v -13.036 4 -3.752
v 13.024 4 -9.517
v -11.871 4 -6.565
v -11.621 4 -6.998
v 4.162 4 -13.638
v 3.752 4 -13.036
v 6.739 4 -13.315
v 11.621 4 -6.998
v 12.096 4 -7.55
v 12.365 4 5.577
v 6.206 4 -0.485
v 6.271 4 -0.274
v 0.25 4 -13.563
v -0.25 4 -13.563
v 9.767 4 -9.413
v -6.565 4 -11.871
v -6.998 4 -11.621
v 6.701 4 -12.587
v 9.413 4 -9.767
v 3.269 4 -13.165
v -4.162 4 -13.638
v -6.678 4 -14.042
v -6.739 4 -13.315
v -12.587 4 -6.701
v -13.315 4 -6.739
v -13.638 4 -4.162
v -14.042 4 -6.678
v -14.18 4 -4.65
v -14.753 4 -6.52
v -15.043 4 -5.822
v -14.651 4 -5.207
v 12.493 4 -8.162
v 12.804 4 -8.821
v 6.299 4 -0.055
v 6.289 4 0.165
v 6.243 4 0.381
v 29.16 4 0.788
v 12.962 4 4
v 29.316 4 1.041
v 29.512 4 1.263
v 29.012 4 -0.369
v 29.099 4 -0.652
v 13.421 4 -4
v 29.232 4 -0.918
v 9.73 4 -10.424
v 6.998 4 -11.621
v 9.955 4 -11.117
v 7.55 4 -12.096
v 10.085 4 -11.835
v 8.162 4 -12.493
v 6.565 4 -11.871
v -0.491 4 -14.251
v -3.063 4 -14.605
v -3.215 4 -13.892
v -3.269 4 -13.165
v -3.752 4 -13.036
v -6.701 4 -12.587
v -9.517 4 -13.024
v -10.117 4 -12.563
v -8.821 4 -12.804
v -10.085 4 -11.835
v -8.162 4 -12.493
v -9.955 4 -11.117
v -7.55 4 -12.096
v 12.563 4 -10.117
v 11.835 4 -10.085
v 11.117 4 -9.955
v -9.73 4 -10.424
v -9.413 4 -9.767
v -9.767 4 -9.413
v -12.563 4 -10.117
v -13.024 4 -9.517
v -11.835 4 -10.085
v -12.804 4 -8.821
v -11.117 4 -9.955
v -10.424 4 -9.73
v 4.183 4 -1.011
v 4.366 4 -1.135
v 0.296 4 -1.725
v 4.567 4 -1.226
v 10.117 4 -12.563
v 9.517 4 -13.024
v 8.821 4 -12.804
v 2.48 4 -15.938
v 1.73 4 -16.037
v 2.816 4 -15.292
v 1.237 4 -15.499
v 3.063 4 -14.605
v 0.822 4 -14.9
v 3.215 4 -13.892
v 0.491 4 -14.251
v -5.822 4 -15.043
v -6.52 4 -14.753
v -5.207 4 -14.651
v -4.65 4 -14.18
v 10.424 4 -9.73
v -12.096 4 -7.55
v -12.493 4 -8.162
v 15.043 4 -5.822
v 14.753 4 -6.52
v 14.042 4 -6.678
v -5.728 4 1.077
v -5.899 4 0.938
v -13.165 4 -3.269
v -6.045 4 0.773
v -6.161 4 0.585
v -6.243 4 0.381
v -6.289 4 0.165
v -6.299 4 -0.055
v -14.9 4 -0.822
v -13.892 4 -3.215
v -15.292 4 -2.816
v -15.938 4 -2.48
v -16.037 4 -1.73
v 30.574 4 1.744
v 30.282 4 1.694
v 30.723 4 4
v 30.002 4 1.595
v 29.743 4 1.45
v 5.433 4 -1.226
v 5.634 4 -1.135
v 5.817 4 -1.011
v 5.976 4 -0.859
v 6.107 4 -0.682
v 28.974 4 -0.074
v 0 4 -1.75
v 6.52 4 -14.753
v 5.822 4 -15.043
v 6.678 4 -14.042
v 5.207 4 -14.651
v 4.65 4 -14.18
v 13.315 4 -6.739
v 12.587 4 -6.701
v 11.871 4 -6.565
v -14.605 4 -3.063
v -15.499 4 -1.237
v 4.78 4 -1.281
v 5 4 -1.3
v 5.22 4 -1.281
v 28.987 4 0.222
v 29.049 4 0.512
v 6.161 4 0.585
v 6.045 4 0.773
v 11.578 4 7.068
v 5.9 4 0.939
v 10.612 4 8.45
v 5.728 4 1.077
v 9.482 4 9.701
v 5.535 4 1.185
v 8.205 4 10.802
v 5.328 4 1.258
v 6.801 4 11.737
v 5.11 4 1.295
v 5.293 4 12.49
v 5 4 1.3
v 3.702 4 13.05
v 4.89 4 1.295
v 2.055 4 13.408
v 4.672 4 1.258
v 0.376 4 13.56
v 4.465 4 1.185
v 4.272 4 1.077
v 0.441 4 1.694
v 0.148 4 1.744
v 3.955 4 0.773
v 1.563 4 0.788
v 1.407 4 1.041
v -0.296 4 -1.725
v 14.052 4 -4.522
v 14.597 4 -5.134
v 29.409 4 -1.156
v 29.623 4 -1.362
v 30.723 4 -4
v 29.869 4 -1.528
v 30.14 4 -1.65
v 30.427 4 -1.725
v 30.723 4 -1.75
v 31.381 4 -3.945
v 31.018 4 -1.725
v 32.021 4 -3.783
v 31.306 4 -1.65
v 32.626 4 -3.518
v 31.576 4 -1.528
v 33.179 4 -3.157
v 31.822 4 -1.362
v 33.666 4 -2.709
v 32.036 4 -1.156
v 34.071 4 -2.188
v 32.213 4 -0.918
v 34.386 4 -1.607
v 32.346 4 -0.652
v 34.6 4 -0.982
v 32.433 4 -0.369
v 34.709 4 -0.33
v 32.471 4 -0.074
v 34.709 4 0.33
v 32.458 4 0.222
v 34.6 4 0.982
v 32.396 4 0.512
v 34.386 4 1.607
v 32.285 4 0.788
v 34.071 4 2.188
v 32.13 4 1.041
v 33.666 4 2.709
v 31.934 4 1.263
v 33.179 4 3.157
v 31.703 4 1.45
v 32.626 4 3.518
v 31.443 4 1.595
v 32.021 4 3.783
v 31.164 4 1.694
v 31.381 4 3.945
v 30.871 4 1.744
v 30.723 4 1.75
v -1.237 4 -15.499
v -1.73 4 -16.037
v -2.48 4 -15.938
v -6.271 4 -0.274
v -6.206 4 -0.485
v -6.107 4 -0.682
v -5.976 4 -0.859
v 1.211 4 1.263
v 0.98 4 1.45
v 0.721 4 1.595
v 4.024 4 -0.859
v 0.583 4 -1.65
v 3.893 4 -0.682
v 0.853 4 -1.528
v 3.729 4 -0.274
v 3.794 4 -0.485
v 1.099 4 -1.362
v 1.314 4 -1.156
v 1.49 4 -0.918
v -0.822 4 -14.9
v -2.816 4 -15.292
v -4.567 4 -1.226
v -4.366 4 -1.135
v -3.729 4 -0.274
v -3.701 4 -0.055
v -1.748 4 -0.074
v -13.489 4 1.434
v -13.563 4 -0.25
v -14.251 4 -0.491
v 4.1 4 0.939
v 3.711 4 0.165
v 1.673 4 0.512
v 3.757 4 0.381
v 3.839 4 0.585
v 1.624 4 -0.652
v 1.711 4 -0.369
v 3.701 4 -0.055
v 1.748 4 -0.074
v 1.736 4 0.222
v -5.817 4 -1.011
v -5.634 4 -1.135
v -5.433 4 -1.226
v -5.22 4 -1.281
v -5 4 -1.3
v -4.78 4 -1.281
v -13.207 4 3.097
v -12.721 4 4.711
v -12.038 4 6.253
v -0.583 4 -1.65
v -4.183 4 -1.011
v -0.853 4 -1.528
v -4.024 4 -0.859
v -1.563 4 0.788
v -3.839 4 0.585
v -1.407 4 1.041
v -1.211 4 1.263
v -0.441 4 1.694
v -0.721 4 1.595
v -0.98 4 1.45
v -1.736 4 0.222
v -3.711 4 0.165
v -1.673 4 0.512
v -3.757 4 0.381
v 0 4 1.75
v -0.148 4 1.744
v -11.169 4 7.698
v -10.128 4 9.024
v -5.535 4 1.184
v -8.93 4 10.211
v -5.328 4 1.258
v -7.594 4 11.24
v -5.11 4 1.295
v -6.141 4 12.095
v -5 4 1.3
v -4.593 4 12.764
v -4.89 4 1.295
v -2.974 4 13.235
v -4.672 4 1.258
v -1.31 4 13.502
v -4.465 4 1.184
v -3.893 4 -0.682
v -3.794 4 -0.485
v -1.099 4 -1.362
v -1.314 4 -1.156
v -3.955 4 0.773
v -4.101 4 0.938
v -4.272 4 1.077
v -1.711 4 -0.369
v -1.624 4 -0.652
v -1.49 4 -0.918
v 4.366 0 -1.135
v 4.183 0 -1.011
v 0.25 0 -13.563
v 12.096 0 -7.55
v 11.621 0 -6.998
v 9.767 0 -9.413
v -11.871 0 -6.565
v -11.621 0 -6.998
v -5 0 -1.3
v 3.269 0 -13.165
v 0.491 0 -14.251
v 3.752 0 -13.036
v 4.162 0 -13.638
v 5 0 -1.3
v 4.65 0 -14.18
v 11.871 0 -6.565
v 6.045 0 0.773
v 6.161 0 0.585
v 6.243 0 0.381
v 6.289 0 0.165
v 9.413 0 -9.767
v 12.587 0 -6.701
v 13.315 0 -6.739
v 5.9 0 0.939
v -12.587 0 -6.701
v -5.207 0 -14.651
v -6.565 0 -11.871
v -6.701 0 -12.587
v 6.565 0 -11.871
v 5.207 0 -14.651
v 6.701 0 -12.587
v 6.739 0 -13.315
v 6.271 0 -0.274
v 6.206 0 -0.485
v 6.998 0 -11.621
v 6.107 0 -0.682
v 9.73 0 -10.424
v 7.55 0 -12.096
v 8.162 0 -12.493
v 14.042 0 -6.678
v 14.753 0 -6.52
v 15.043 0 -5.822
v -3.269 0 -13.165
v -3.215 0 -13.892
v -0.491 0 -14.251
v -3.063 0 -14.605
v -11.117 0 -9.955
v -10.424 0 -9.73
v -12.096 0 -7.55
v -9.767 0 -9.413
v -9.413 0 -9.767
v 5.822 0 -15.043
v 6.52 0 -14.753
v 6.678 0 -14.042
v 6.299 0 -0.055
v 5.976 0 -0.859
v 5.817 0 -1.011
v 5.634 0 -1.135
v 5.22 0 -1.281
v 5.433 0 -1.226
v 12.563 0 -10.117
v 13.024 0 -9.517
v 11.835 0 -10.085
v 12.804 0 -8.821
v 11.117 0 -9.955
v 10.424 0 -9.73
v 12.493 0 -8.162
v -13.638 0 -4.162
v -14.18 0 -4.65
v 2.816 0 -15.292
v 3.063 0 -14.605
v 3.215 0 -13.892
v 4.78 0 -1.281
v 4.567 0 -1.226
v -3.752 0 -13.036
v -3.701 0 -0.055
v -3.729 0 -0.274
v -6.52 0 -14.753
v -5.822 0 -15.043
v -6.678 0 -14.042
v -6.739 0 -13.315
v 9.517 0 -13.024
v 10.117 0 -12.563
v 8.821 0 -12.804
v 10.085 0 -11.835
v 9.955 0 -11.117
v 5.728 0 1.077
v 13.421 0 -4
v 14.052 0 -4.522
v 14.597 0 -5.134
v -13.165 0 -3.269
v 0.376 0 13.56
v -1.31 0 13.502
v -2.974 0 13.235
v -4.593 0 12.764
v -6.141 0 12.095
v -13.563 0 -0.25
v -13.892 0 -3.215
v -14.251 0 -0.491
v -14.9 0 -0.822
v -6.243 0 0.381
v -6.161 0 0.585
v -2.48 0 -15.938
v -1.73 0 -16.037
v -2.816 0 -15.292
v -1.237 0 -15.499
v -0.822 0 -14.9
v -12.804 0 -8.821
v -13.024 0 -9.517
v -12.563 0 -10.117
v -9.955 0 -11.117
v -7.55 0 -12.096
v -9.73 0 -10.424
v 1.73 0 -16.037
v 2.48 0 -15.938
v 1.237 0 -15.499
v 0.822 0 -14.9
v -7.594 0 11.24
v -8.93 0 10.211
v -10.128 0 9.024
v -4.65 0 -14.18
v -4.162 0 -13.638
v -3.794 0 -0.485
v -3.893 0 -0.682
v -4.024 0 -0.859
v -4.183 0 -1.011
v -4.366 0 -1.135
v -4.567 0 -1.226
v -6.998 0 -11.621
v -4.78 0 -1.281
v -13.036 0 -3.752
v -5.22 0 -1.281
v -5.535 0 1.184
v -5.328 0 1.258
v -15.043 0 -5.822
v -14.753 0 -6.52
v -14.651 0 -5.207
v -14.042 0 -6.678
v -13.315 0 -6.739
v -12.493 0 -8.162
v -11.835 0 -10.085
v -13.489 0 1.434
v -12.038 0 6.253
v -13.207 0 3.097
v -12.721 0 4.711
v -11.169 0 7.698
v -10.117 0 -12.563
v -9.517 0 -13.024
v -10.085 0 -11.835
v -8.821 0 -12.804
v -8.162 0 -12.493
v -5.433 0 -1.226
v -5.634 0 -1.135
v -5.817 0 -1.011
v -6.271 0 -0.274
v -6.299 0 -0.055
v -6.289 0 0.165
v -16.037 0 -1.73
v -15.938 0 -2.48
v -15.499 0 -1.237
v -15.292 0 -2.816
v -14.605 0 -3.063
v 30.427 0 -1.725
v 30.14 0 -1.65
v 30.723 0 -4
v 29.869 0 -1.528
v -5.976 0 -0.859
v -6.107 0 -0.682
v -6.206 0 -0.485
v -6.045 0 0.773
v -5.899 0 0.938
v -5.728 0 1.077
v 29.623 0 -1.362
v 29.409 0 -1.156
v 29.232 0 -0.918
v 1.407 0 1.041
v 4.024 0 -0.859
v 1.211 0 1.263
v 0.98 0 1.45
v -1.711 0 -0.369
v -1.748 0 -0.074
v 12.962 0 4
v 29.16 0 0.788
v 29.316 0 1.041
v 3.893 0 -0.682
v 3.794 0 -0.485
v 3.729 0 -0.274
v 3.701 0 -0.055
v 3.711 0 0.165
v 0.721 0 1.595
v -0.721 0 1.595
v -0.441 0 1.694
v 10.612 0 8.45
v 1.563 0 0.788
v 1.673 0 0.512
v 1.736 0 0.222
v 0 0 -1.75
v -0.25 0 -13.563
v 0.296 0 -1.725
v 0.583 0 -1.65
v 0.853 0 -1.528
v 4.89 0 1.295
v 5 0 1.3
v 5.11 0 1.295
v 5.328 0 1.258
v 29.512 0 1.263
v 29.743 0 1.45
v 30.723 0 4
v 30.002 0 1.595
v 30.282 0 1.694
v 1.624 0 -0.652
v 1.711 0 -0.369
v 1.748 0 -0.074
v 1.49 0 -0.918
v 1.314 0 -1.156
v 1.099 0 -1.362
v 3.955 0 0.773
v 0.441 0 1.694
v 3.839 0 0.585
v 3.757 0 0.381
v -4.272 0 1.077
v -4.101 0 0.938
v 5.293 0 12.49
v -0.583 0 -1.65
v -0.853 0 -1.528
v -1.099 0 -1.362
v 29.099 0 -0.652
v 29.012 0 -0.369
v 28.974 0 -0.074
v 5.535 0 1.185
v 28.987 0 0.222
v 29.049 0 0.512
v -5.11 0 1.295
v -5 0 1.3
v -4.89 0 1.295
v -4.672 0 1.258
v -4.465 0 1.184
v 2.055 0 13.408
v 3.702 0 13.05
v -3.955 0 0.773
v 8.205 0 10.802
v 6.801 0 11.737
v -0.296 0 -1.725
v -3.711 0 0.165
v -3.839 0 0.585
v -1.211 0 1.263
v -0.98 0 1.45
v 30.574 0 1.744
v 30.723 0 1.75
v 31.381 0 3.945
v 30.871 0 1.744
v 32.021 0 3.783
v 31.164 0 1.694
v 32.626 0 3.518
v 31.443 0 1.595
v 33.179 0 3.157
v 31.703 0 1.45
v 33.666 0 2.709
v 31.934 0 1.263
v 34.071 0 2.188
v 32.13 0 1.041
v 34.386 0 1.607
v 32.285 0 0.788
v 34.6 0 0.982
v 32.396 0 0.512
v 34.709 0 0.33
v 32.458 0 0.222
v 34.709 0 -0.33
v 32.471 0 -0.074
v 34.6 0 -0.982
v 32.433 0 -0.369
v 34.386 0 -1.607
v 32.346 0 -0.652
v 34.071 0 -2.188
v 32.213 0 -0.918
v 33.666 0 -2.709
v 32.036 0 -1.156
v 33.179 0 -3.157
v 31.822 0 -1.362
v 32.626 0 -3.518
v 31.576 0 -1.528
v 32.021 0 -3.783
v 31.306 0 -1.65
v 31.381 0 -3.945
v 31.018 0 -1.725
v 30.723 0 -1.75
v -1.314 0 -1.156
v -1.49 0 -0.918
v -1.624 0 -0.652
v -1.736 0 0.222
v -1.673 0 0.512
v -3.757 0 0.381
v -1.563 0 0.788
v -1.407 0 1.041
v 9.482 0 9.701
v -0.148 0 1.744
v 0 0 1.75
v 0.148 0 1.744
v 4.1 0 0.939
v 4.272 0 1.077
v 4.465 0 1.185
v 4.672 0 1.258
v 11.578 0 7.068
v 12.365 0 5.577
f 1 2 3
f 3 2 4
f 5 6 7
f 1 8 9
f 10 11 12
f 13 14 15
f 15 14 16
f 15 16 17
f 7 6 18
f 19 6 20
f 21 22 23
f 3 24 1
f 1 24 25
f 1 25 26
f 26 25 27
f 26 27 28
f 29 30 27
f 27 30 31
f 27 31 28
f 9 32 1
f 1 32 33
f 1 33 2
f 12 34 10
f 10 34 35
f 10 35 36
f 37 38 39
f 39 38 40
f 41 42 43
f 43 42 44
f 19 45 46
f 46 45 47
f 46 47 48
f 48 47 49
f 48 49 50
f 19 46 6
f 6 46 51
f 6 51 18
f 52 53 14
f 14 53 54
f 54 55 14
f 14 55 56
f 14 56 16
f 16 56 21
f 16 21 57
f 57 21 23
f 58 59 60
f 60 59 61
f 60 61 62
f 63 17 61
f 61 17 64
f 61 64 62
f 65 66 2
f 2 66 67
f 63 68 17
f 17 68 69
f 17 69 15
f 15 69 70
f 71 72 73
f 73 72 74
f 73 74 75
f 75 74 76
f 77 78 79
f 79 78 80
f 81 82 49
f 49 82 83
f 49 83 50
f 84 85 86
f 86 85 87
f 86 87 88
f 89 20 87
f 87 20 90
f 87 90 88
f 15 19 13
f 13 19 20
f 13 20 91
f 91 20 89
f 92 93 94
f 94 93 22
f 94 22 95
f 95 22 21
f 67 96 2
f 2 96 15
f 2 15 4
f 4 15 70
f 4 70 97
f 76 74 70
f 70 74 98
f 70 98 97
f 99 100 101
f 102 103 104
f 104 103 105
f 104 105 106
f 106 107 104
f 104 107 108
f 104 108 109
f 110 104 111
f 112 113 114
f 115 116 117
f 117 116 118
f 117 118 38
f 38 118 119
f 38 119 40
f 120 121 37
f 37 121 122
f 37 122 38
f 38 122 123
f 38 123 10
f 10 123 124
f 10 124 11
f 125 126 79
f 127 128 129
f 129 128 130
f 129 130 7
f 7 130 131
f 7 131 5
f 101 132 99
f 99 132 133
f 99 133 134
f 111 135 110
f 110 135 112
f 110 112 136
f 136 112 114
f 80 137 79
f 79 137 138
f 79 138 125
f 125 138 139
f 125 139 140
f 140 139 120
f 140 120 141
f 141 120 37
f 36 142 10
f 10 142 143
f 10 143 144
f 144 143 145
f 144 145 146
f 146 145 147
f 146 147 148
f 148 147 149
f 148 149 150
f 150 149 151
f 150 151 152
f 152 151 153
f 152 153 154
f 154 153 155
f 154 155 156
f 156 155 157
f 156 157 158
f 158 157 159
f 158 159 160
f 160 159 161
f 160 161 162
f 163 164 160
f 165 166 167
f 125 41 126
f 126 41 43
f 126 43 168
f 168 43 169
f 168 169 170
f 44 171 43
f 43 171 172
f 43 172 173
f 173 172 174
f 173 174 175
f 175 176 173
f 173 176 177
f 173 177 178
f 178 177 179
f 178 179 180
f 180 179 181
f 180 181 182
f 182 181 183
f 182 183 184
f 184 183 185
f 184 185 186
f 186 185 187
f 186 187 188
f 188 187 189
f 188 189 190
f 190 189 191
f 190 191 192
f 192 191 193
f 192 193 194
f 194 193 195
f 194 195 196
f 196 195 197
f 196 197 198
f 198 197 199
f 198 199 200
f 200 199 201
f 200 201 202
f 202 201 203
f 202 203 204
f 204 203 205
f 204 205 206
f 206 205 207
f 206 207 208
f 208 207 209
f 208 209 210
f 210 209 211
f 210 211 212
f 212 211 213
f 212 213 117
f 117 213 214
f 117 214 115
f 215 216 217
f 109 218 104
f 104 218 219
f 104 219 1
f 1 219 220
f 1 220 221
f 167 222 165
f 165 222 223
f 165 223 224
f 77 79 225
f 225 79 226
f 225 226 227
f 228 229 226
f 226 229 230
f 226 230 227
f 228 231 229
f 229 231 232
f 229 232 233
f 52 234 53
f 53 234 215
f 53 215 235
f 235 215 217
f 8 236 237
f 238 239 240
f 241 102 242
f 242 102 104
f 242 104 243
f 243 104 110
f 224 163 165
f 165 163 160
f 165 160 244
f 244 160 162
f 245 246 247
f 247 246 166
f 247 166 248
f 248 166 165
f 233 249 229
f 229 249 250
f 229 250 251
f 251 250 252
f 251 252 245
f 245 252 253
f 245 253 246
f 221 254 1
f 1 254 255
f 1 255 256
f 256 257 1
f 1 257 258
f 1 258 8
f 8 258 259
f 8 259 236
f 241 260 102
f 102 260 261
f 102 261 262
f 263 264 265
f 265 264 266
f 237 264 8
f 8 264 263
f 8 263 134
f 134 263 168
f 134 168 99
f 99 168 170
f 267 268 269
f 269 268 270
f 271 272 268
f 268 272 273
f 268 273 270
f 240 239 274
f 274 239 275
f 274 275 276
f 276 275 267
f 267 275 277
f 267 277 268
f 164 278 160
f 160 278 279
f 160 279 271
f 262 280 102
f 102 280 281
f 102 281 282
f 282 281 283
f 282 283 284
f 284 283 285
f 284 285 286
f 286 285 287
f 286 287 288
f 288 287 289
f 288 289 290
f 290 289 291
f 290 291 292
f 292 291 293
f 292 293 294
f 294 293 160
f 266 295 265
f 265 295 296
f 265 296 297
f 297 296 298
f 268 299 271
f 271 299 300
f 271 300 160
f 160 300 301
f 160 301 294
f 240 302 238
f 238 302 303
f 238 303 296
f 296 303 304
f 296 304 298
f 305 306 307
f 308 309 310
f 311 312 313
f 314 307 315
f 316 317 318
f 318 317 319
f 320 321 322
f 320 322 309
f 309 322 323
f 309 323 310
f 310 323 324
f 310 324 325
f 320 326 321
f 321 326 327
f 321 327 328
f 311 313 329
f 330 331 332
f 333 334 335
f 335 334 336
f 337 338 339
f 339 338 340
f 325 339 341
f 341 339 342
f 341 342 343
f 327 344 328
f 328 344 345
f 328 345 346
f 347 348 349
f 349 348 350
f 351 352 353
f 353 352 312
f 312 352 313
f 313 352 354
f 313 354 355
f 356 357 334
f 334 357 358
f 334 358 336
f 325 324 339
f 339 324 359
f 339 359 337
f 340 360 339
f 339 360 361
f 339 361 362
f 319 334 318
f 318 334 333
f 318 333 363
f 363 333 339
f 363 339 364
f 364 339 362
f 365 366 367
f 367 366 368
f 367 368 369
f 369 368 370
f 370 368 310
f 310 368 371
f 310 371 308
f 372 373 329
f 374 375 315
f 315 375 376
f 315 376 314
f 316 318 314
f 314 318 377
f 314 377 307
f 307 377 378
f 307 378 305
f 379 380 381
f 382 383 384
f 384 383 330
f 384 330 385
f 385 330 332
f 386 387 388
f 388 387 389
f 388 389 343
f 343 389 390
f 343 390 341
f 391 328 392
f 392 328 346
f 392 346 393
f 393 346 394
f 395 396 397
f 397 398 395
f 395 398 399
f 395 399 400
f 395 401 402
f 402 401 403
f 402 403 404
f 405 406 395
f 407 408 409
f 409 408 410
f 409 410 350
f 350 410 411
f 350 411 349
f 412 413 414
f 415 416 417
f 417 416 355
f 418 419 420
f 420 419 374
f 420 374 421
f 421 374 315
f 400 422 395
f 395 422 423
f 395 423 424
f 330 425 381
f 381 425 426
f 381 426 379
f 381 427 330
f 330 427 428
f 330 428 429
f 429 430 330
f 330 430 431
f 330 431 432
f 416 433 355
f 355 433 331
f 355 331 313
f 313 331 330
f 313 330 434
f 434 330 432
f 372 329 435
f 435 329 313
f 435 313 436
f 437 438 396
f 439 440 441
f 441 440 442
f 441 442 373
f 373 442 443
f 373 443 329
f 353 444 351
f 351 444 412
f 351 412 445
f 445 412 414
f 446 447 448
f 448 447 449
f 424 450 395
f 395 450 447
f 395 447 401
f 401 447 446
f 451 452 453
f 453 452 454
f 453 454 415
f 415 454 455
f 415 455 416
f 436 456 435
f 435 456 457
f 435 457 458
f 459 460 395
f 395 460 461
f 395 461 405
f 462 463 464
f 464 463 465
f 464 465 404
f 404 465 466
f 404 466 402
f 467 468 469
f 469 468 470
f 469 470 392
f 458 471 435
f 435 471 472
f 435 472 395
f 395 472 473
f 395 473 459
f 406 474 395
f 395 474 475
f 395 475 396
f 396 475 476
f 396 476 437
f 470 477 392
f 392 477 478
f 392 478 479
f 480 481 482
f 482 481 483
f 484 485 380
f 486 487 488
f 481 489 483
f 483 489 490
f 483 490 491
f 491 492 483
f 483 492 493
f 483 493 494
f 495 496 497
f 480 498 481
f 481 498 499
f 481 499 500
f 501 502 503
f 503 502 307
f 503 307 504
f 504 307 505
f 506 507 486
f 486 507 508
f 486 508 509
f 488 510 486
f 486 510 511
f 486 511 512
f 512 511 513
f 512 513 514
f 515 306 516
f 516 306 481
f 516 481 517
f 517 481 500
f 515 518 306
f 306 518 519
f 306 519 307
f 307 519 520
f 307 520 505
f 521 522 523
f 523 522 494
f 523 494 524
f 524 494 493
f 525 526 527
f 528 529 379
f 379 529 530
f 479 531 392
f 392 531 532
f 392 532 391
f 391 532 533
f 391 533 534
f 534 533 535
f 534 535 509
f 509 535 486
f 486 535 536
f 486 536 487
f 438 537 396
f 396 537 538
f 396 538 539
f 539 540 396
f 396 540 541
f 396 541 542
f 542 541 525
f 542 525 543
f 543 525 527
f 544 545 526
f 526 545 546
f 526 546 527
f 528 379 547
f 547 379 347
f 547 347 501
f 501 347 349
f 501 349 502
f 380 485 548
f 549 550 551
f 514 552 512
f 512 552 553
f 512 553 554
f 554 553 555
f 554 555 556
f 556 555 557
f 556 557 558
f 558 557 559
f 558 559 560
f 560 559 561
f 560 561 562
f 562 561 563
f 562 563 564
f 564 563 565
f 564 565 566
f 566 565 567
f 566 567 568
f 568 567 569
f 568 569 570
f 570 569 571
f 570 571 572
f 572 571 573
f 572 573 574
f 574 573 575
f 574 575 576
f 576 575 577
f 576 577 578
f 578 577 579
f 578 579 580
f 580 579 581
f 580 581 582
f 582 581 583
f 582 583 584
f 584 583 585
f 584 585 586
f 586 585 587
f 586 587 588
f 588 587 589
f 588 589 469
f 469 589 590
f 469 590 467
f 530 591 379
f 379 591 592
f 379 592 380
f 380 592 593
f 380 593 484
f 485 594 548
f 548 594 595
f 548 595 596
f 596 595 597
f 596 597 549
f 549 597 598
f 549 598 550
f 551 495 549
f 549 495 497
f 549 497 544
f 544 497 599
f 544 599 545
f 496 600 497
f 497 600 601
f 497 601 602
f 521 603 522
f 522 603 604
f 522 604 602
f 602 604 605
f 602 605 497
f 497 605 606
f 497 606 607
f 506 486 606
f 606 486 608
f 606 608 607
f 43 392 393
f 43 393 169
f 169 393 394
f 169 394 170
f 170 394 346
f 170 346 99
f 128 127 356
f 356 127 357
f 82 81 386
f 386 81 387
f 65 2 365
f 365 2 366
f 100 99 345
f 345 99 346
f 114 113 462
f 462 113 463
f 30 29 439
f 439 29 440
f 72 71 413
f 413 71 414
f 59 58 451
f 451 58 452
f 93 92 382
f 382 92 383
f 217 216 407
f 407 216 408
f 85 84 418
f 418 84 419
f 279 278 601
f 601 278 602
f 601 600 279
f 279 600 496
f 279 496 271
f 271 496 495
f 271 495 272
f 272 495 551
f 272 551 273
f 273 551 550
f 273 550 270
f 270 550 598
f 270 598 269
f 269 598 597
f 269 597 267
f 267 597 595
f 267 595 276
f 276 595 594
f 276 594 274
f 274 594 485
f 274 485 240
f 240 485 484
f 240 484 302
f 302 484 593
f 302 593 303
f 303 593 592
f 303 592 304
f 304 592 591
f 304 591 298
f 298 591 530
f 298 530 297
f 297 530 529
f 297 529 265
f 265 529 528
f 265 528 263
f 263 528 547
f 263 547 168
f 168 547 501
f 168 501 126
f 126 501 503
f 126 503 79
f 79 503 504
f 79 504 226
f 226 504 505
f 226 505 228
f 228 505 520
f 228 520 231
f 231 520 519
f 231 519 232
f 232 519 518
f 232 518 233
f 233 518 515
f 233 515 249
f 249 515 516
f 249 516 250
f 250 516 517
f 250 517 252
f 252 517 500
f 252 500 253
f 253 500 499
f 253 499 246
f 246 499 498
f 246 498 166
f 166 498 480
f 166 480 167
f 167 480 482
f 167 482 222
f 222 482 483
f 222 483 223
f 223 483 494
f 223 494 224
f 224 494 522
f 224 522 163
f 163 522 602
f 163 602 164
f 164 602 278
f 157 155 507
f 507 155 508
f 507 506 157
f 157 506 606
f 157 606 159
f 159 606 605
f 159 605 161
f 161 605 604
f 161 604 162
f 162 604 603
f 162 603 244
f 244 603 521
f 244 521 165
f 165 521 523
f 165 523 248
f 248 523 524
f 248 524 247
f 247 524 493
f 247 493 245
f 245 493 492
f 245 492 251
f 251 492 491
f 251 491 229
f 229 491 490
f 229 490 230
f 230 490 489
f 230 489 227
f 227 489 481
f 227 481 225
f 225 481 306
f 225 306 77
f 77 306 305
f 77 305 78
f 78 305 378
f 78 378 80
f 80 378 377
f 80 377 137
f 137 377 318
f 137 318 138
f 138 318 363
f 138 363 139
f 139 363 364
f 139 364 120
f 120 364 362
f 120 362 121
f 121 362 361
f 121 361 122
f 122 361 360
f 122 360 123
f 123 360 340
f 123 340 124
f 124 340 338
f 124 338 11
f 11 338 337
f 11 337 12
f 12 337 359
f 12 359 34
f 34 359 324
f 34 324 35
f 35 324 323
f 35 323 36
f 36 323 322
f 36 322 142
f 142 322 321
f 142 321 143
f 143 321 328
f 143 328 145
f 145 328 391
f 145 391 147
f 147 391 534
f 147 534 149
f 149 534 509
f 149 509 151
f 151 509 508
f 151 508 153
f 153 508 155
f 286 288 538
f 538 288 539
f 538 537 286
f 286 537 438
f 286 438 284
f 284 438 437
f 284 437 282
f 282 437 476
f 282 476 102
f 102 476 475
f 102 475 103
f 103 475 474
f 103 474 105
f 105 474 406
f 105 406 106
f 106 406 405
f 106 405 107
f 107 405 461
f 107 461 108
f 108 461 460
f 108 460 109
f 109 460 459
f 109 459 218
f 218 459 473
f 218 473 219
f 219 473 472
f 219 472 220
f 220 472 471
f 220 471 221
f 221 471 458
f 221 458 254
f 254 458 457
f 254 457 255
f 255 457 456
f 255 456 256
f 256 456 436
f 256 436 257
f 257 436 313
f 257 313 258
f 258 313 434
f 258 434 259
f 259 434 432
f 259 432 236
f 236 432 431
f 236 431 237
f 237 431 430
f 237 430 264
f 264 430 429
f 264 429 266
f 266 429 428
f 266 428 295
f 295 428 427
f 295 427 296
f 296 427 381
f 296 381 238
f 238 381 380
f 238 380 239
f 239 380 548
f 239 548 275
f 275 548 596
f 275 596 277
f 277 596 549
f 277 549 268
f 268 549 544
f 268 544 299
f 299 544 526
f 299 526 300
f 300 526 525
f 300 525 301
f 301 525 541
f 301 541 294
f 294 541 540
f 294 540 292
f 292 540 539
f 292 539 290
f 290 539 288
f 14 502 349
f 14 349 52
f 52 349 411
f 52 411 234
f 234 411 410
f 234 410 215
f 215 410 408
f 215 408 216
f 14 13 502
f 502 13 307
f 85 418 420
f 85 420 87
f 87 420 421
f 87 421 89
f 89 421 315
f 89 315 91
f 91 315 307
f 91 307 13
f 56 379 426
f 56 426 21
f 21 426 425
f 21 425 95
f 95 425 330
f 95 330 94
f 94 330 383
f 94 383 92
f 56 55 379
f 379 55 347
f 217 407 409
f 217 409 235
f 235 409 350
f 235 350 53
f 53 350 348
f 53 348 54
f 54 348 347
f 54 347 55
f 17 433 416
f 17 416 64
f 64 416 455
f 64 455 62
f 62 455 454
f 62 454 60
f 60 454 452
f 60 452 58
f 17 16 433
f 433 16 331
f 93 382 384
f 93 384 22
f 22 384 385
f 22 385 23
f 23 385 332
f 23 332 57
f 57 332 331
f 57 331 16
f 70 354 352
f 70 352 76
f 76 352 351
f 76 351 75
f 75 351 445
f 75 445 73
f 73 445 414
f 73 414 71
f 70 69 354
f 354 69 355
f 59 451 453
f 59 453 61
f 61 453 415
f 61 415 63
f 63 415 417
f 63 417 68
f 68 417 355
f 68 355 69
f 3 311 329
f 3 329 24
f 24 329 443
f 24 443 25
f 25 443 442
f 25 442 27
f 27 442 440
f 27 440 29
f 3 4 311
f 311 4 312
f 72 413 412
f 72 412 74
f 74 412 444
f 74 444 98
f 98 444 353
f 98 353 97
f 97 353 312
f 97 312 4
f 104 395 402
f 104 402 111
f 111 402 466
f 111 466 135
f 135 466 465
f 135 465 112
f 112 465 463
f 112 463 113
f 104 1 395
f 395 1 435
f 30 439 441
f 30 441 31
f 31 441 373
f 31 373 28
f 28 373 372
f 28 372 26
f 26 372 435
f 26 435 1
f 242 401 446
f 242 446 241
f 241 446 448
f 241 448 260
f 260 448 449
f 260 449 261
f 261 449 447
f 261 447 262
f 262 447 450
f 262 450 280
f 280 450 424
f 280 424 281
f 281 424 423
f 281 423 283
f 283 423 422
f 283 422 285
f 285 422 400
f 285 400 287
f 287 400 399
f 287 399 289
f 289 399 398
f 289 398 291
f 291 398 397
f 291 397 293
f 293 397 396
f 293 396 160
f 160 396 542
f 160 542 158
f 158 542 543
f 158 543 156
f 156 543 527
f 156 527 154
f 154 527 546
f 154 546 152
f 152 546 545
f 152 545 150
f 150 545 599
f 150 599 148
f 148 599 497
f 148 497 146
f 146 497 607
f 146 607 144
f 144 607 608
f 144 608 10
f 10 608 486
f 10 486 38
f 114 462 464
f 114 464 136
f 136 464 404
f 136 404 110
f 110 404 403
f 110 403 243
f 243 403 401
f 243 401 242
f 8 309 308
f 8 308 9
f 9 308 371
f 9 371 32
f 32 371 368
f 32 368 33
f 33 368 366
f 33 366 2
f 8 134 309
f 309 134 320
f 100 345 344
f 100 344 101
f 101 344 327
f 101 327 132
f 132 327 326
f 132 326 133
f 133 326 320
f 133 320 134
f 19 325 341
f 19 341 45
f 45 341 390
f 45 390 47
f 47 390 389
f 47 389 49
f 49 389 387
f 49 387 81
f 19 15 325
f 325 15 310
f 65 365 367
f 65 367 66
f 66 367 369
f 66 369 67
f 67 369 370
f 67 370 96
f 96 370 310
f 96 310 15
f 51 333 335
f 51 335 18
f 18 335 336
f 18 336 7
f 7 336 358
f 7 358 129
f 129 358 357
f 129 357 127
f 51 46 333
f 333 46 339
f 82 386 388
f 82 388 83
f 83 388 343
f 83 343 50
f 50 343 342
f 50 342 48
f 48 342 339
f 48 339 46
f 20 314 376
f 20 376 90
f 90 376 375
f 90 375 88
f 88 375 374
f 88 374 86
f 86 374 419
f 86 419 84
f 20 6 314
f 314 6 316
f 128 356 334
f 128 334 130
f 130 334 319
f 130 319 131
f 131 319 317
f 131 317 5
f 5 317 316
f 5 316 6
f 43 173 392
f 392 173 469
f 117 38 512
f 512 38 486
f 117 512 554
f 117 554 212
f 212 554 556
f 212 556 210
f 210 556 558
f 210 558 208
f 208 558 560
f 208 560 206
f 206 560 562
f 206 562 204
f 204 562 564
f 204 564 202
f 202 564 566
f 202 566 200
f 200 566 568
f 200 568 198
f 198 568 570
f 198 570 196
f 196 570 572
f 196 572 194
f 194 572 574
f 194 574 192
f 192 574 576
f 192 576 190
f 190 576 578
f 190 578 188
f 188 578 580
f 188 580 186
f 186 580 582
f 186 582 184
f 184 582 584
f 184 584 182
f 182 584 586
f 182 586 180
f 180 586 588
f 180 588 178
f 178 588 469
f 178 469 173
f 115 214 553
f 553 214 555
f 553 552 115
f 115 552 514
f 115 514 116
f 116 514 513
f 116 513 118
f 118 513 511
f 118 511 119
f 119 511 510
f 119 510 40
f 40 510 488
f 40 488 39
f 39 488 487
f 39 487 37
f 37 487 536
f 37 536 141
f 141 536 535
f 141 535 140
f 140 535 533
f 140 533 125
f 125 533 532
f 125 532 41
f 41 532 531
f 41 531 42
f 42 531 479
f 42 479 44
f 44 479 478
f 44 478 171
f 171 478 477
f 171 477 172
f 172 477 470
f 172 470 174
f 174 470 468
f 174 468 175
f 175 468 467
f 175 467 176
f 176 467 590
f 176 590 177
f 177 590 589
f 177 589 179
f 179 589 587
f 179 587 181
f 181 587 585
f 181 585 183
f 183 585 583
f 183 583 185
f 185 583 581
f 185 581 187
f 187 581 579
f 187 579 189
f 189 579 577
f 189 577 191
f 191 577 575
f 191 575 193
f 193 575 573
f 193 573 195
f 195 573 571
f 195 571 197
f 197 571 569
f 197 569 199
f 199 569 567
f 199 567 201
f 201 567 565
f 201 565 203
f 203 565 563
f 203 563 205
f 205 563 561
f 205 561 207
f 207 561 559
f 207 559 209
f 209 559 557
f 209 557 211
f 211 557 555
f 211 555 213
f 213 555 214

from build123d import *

# Parameters (mm, degrees)
IZIM2_R                     = 16.13
IZIM2_R_2                   = 1.75
IZIM2_R_3                   = 1.3
IZIM2_R_4                   = 1.29986265
Y_KSEKLIK_EKSTR_ZYON1_DEPTH = 4
KES_EKSTR_ZYON2_DEPTH       = 4
DAIRESEL_KAPLAMA2_COUNT     = 24
IZIM4_R                     = 1.75
Y_KSEKLIK_EKSTR_ZYON2_DEPTH = 4
KES_EKSTR_ZYON3_DEPTH       = 4


with BuildPart() as part:
    # Çizim2 → Yükseklik-Ekstrüzyon1 (new body)
    with BuildSketch(Plane(origin=(0, 0, 0), x_dir=(1, 0, 0), z_dir=(0, 1, 0))):
        Circle(IZIM2_R)
        Circle(IZIM2_R_2, mode=Mode.SUBTRACT)
        with Locations((5, 0)):
            Circle(IZIM2_R_3, mode=Mode.SUBTRACT)
        with Locations((-5, 0)):
            Circle(IZIM2_R_4, mode=Mode.SUBTRACT)
    extrude(amount=Y_KSEKLIK_EKSTR_ZYON1_DEPTH)

    # Çizim1 → Kes-Ekstrüzyon2 (cut)
    with BuildSketch(Plane(origin=(0, 0, 0), x_dir=(1, 0, 0), z_dir=(0, 1, 0))):
        with BuildLine():
            ThreePointArc((0.25, 13.562696082), (0.821724337, 14.900419859), (1.729803678, 16.036978495))
            ThreePointArc((1.729803678, 16.036978495), (0, 16.13), (-1.729803678, 16.036978495))
            ThreePointArc((-1.729803678, 16.036978495), (-0.821724337, 14.900419859), (-0.25, 13.562696082))
            ThreePointArc((-0.25, 13.562696082), (-0.125005308, 13.564424008), (0, 13.565))
            ThreePointArc((0, 13.565), (0.125005308, 13.564424008), (0.25, 13.562696082))
        make_face()
    kes_ekstr_zyon2 = extrude(amount=KES_EKSTR_ZYON2_DEPTH, mode=Mode.SUBTRACT)

    # Dairesel Kaplama2: Kes-Ekstrüzyon2 ×24 about axis
    dairesel_kaplama2_axis = Axis((0, 4, 0), (0, 1, 0))
    for i in range(1, DAIRESEL_KAPLAMA2_COUNT):
        add(kes_ekstr_zyon2.rotate(dairesel_kaplama2_axis, i * 360 / DAIRESEL_KAPLAMA2_COUNT), mode=Mode.SUBTRACT)

    # Çizim4 → Yükseklik-Ekstrüzyon2 (add)
    with BuildSketch(Plane(origin=(0, 0, 0), x_dir=(1, 0, 0), z_dir=(0, 1, 0))):
        with BuildLine():
            Line((11.382628211, 4), (22.858544508, 4))
            Line((22.858544508, 4), (30.722628211, 4))
            ThreePointArc((30.722628211, 4), (34.722628211, 0), (30.722628211, -4))
            Line((30.722628211, -4), (22.391671269, -4))
            Line((22.391671269, -4), (11.382628211, -4))
            ThreePointArc((11.382628211, -4), (12.065, 0), (11.382628211, 4))
        make_face()
        with Locations((30.722628211, 0)):
            Circle(IZIM4_R, mode=Mode.SUBTRACT)
    extrude(amount=Y_KSEKLIK_EKSTR_ZYON2_DEPTH)

    # Çizim5 → Kes-Ekstrüzyon3 (cut)
    with BuildSketch(Plane(origin=(0, 0, 0), x_dir=(1, 0, 0), z_dir=(0, 1, 0))):
        with BuildLine():
            Line((-13.565, 0), (-18.52935314, 0))
            Line((-18.52935314, 0), (-18.52935314, -18.21120255))
            Line((-18.52935314, -18.21120255), (15.661629934, -18.576881513))
            Line((15.661629934, -18.576881513), (15.661629934, -4))
            Line((15.661629934, -4), (12.961837254, -4))
            ThreePointArc((12.961837254, -4), (-2.022610028, -13.413361759), (-13.565, 0))
        make_face()
    extrude(amount=KES_EKSTR_ZYON3_DEPTH, mode=Mode.SUBTRACT)


solid = part.part
